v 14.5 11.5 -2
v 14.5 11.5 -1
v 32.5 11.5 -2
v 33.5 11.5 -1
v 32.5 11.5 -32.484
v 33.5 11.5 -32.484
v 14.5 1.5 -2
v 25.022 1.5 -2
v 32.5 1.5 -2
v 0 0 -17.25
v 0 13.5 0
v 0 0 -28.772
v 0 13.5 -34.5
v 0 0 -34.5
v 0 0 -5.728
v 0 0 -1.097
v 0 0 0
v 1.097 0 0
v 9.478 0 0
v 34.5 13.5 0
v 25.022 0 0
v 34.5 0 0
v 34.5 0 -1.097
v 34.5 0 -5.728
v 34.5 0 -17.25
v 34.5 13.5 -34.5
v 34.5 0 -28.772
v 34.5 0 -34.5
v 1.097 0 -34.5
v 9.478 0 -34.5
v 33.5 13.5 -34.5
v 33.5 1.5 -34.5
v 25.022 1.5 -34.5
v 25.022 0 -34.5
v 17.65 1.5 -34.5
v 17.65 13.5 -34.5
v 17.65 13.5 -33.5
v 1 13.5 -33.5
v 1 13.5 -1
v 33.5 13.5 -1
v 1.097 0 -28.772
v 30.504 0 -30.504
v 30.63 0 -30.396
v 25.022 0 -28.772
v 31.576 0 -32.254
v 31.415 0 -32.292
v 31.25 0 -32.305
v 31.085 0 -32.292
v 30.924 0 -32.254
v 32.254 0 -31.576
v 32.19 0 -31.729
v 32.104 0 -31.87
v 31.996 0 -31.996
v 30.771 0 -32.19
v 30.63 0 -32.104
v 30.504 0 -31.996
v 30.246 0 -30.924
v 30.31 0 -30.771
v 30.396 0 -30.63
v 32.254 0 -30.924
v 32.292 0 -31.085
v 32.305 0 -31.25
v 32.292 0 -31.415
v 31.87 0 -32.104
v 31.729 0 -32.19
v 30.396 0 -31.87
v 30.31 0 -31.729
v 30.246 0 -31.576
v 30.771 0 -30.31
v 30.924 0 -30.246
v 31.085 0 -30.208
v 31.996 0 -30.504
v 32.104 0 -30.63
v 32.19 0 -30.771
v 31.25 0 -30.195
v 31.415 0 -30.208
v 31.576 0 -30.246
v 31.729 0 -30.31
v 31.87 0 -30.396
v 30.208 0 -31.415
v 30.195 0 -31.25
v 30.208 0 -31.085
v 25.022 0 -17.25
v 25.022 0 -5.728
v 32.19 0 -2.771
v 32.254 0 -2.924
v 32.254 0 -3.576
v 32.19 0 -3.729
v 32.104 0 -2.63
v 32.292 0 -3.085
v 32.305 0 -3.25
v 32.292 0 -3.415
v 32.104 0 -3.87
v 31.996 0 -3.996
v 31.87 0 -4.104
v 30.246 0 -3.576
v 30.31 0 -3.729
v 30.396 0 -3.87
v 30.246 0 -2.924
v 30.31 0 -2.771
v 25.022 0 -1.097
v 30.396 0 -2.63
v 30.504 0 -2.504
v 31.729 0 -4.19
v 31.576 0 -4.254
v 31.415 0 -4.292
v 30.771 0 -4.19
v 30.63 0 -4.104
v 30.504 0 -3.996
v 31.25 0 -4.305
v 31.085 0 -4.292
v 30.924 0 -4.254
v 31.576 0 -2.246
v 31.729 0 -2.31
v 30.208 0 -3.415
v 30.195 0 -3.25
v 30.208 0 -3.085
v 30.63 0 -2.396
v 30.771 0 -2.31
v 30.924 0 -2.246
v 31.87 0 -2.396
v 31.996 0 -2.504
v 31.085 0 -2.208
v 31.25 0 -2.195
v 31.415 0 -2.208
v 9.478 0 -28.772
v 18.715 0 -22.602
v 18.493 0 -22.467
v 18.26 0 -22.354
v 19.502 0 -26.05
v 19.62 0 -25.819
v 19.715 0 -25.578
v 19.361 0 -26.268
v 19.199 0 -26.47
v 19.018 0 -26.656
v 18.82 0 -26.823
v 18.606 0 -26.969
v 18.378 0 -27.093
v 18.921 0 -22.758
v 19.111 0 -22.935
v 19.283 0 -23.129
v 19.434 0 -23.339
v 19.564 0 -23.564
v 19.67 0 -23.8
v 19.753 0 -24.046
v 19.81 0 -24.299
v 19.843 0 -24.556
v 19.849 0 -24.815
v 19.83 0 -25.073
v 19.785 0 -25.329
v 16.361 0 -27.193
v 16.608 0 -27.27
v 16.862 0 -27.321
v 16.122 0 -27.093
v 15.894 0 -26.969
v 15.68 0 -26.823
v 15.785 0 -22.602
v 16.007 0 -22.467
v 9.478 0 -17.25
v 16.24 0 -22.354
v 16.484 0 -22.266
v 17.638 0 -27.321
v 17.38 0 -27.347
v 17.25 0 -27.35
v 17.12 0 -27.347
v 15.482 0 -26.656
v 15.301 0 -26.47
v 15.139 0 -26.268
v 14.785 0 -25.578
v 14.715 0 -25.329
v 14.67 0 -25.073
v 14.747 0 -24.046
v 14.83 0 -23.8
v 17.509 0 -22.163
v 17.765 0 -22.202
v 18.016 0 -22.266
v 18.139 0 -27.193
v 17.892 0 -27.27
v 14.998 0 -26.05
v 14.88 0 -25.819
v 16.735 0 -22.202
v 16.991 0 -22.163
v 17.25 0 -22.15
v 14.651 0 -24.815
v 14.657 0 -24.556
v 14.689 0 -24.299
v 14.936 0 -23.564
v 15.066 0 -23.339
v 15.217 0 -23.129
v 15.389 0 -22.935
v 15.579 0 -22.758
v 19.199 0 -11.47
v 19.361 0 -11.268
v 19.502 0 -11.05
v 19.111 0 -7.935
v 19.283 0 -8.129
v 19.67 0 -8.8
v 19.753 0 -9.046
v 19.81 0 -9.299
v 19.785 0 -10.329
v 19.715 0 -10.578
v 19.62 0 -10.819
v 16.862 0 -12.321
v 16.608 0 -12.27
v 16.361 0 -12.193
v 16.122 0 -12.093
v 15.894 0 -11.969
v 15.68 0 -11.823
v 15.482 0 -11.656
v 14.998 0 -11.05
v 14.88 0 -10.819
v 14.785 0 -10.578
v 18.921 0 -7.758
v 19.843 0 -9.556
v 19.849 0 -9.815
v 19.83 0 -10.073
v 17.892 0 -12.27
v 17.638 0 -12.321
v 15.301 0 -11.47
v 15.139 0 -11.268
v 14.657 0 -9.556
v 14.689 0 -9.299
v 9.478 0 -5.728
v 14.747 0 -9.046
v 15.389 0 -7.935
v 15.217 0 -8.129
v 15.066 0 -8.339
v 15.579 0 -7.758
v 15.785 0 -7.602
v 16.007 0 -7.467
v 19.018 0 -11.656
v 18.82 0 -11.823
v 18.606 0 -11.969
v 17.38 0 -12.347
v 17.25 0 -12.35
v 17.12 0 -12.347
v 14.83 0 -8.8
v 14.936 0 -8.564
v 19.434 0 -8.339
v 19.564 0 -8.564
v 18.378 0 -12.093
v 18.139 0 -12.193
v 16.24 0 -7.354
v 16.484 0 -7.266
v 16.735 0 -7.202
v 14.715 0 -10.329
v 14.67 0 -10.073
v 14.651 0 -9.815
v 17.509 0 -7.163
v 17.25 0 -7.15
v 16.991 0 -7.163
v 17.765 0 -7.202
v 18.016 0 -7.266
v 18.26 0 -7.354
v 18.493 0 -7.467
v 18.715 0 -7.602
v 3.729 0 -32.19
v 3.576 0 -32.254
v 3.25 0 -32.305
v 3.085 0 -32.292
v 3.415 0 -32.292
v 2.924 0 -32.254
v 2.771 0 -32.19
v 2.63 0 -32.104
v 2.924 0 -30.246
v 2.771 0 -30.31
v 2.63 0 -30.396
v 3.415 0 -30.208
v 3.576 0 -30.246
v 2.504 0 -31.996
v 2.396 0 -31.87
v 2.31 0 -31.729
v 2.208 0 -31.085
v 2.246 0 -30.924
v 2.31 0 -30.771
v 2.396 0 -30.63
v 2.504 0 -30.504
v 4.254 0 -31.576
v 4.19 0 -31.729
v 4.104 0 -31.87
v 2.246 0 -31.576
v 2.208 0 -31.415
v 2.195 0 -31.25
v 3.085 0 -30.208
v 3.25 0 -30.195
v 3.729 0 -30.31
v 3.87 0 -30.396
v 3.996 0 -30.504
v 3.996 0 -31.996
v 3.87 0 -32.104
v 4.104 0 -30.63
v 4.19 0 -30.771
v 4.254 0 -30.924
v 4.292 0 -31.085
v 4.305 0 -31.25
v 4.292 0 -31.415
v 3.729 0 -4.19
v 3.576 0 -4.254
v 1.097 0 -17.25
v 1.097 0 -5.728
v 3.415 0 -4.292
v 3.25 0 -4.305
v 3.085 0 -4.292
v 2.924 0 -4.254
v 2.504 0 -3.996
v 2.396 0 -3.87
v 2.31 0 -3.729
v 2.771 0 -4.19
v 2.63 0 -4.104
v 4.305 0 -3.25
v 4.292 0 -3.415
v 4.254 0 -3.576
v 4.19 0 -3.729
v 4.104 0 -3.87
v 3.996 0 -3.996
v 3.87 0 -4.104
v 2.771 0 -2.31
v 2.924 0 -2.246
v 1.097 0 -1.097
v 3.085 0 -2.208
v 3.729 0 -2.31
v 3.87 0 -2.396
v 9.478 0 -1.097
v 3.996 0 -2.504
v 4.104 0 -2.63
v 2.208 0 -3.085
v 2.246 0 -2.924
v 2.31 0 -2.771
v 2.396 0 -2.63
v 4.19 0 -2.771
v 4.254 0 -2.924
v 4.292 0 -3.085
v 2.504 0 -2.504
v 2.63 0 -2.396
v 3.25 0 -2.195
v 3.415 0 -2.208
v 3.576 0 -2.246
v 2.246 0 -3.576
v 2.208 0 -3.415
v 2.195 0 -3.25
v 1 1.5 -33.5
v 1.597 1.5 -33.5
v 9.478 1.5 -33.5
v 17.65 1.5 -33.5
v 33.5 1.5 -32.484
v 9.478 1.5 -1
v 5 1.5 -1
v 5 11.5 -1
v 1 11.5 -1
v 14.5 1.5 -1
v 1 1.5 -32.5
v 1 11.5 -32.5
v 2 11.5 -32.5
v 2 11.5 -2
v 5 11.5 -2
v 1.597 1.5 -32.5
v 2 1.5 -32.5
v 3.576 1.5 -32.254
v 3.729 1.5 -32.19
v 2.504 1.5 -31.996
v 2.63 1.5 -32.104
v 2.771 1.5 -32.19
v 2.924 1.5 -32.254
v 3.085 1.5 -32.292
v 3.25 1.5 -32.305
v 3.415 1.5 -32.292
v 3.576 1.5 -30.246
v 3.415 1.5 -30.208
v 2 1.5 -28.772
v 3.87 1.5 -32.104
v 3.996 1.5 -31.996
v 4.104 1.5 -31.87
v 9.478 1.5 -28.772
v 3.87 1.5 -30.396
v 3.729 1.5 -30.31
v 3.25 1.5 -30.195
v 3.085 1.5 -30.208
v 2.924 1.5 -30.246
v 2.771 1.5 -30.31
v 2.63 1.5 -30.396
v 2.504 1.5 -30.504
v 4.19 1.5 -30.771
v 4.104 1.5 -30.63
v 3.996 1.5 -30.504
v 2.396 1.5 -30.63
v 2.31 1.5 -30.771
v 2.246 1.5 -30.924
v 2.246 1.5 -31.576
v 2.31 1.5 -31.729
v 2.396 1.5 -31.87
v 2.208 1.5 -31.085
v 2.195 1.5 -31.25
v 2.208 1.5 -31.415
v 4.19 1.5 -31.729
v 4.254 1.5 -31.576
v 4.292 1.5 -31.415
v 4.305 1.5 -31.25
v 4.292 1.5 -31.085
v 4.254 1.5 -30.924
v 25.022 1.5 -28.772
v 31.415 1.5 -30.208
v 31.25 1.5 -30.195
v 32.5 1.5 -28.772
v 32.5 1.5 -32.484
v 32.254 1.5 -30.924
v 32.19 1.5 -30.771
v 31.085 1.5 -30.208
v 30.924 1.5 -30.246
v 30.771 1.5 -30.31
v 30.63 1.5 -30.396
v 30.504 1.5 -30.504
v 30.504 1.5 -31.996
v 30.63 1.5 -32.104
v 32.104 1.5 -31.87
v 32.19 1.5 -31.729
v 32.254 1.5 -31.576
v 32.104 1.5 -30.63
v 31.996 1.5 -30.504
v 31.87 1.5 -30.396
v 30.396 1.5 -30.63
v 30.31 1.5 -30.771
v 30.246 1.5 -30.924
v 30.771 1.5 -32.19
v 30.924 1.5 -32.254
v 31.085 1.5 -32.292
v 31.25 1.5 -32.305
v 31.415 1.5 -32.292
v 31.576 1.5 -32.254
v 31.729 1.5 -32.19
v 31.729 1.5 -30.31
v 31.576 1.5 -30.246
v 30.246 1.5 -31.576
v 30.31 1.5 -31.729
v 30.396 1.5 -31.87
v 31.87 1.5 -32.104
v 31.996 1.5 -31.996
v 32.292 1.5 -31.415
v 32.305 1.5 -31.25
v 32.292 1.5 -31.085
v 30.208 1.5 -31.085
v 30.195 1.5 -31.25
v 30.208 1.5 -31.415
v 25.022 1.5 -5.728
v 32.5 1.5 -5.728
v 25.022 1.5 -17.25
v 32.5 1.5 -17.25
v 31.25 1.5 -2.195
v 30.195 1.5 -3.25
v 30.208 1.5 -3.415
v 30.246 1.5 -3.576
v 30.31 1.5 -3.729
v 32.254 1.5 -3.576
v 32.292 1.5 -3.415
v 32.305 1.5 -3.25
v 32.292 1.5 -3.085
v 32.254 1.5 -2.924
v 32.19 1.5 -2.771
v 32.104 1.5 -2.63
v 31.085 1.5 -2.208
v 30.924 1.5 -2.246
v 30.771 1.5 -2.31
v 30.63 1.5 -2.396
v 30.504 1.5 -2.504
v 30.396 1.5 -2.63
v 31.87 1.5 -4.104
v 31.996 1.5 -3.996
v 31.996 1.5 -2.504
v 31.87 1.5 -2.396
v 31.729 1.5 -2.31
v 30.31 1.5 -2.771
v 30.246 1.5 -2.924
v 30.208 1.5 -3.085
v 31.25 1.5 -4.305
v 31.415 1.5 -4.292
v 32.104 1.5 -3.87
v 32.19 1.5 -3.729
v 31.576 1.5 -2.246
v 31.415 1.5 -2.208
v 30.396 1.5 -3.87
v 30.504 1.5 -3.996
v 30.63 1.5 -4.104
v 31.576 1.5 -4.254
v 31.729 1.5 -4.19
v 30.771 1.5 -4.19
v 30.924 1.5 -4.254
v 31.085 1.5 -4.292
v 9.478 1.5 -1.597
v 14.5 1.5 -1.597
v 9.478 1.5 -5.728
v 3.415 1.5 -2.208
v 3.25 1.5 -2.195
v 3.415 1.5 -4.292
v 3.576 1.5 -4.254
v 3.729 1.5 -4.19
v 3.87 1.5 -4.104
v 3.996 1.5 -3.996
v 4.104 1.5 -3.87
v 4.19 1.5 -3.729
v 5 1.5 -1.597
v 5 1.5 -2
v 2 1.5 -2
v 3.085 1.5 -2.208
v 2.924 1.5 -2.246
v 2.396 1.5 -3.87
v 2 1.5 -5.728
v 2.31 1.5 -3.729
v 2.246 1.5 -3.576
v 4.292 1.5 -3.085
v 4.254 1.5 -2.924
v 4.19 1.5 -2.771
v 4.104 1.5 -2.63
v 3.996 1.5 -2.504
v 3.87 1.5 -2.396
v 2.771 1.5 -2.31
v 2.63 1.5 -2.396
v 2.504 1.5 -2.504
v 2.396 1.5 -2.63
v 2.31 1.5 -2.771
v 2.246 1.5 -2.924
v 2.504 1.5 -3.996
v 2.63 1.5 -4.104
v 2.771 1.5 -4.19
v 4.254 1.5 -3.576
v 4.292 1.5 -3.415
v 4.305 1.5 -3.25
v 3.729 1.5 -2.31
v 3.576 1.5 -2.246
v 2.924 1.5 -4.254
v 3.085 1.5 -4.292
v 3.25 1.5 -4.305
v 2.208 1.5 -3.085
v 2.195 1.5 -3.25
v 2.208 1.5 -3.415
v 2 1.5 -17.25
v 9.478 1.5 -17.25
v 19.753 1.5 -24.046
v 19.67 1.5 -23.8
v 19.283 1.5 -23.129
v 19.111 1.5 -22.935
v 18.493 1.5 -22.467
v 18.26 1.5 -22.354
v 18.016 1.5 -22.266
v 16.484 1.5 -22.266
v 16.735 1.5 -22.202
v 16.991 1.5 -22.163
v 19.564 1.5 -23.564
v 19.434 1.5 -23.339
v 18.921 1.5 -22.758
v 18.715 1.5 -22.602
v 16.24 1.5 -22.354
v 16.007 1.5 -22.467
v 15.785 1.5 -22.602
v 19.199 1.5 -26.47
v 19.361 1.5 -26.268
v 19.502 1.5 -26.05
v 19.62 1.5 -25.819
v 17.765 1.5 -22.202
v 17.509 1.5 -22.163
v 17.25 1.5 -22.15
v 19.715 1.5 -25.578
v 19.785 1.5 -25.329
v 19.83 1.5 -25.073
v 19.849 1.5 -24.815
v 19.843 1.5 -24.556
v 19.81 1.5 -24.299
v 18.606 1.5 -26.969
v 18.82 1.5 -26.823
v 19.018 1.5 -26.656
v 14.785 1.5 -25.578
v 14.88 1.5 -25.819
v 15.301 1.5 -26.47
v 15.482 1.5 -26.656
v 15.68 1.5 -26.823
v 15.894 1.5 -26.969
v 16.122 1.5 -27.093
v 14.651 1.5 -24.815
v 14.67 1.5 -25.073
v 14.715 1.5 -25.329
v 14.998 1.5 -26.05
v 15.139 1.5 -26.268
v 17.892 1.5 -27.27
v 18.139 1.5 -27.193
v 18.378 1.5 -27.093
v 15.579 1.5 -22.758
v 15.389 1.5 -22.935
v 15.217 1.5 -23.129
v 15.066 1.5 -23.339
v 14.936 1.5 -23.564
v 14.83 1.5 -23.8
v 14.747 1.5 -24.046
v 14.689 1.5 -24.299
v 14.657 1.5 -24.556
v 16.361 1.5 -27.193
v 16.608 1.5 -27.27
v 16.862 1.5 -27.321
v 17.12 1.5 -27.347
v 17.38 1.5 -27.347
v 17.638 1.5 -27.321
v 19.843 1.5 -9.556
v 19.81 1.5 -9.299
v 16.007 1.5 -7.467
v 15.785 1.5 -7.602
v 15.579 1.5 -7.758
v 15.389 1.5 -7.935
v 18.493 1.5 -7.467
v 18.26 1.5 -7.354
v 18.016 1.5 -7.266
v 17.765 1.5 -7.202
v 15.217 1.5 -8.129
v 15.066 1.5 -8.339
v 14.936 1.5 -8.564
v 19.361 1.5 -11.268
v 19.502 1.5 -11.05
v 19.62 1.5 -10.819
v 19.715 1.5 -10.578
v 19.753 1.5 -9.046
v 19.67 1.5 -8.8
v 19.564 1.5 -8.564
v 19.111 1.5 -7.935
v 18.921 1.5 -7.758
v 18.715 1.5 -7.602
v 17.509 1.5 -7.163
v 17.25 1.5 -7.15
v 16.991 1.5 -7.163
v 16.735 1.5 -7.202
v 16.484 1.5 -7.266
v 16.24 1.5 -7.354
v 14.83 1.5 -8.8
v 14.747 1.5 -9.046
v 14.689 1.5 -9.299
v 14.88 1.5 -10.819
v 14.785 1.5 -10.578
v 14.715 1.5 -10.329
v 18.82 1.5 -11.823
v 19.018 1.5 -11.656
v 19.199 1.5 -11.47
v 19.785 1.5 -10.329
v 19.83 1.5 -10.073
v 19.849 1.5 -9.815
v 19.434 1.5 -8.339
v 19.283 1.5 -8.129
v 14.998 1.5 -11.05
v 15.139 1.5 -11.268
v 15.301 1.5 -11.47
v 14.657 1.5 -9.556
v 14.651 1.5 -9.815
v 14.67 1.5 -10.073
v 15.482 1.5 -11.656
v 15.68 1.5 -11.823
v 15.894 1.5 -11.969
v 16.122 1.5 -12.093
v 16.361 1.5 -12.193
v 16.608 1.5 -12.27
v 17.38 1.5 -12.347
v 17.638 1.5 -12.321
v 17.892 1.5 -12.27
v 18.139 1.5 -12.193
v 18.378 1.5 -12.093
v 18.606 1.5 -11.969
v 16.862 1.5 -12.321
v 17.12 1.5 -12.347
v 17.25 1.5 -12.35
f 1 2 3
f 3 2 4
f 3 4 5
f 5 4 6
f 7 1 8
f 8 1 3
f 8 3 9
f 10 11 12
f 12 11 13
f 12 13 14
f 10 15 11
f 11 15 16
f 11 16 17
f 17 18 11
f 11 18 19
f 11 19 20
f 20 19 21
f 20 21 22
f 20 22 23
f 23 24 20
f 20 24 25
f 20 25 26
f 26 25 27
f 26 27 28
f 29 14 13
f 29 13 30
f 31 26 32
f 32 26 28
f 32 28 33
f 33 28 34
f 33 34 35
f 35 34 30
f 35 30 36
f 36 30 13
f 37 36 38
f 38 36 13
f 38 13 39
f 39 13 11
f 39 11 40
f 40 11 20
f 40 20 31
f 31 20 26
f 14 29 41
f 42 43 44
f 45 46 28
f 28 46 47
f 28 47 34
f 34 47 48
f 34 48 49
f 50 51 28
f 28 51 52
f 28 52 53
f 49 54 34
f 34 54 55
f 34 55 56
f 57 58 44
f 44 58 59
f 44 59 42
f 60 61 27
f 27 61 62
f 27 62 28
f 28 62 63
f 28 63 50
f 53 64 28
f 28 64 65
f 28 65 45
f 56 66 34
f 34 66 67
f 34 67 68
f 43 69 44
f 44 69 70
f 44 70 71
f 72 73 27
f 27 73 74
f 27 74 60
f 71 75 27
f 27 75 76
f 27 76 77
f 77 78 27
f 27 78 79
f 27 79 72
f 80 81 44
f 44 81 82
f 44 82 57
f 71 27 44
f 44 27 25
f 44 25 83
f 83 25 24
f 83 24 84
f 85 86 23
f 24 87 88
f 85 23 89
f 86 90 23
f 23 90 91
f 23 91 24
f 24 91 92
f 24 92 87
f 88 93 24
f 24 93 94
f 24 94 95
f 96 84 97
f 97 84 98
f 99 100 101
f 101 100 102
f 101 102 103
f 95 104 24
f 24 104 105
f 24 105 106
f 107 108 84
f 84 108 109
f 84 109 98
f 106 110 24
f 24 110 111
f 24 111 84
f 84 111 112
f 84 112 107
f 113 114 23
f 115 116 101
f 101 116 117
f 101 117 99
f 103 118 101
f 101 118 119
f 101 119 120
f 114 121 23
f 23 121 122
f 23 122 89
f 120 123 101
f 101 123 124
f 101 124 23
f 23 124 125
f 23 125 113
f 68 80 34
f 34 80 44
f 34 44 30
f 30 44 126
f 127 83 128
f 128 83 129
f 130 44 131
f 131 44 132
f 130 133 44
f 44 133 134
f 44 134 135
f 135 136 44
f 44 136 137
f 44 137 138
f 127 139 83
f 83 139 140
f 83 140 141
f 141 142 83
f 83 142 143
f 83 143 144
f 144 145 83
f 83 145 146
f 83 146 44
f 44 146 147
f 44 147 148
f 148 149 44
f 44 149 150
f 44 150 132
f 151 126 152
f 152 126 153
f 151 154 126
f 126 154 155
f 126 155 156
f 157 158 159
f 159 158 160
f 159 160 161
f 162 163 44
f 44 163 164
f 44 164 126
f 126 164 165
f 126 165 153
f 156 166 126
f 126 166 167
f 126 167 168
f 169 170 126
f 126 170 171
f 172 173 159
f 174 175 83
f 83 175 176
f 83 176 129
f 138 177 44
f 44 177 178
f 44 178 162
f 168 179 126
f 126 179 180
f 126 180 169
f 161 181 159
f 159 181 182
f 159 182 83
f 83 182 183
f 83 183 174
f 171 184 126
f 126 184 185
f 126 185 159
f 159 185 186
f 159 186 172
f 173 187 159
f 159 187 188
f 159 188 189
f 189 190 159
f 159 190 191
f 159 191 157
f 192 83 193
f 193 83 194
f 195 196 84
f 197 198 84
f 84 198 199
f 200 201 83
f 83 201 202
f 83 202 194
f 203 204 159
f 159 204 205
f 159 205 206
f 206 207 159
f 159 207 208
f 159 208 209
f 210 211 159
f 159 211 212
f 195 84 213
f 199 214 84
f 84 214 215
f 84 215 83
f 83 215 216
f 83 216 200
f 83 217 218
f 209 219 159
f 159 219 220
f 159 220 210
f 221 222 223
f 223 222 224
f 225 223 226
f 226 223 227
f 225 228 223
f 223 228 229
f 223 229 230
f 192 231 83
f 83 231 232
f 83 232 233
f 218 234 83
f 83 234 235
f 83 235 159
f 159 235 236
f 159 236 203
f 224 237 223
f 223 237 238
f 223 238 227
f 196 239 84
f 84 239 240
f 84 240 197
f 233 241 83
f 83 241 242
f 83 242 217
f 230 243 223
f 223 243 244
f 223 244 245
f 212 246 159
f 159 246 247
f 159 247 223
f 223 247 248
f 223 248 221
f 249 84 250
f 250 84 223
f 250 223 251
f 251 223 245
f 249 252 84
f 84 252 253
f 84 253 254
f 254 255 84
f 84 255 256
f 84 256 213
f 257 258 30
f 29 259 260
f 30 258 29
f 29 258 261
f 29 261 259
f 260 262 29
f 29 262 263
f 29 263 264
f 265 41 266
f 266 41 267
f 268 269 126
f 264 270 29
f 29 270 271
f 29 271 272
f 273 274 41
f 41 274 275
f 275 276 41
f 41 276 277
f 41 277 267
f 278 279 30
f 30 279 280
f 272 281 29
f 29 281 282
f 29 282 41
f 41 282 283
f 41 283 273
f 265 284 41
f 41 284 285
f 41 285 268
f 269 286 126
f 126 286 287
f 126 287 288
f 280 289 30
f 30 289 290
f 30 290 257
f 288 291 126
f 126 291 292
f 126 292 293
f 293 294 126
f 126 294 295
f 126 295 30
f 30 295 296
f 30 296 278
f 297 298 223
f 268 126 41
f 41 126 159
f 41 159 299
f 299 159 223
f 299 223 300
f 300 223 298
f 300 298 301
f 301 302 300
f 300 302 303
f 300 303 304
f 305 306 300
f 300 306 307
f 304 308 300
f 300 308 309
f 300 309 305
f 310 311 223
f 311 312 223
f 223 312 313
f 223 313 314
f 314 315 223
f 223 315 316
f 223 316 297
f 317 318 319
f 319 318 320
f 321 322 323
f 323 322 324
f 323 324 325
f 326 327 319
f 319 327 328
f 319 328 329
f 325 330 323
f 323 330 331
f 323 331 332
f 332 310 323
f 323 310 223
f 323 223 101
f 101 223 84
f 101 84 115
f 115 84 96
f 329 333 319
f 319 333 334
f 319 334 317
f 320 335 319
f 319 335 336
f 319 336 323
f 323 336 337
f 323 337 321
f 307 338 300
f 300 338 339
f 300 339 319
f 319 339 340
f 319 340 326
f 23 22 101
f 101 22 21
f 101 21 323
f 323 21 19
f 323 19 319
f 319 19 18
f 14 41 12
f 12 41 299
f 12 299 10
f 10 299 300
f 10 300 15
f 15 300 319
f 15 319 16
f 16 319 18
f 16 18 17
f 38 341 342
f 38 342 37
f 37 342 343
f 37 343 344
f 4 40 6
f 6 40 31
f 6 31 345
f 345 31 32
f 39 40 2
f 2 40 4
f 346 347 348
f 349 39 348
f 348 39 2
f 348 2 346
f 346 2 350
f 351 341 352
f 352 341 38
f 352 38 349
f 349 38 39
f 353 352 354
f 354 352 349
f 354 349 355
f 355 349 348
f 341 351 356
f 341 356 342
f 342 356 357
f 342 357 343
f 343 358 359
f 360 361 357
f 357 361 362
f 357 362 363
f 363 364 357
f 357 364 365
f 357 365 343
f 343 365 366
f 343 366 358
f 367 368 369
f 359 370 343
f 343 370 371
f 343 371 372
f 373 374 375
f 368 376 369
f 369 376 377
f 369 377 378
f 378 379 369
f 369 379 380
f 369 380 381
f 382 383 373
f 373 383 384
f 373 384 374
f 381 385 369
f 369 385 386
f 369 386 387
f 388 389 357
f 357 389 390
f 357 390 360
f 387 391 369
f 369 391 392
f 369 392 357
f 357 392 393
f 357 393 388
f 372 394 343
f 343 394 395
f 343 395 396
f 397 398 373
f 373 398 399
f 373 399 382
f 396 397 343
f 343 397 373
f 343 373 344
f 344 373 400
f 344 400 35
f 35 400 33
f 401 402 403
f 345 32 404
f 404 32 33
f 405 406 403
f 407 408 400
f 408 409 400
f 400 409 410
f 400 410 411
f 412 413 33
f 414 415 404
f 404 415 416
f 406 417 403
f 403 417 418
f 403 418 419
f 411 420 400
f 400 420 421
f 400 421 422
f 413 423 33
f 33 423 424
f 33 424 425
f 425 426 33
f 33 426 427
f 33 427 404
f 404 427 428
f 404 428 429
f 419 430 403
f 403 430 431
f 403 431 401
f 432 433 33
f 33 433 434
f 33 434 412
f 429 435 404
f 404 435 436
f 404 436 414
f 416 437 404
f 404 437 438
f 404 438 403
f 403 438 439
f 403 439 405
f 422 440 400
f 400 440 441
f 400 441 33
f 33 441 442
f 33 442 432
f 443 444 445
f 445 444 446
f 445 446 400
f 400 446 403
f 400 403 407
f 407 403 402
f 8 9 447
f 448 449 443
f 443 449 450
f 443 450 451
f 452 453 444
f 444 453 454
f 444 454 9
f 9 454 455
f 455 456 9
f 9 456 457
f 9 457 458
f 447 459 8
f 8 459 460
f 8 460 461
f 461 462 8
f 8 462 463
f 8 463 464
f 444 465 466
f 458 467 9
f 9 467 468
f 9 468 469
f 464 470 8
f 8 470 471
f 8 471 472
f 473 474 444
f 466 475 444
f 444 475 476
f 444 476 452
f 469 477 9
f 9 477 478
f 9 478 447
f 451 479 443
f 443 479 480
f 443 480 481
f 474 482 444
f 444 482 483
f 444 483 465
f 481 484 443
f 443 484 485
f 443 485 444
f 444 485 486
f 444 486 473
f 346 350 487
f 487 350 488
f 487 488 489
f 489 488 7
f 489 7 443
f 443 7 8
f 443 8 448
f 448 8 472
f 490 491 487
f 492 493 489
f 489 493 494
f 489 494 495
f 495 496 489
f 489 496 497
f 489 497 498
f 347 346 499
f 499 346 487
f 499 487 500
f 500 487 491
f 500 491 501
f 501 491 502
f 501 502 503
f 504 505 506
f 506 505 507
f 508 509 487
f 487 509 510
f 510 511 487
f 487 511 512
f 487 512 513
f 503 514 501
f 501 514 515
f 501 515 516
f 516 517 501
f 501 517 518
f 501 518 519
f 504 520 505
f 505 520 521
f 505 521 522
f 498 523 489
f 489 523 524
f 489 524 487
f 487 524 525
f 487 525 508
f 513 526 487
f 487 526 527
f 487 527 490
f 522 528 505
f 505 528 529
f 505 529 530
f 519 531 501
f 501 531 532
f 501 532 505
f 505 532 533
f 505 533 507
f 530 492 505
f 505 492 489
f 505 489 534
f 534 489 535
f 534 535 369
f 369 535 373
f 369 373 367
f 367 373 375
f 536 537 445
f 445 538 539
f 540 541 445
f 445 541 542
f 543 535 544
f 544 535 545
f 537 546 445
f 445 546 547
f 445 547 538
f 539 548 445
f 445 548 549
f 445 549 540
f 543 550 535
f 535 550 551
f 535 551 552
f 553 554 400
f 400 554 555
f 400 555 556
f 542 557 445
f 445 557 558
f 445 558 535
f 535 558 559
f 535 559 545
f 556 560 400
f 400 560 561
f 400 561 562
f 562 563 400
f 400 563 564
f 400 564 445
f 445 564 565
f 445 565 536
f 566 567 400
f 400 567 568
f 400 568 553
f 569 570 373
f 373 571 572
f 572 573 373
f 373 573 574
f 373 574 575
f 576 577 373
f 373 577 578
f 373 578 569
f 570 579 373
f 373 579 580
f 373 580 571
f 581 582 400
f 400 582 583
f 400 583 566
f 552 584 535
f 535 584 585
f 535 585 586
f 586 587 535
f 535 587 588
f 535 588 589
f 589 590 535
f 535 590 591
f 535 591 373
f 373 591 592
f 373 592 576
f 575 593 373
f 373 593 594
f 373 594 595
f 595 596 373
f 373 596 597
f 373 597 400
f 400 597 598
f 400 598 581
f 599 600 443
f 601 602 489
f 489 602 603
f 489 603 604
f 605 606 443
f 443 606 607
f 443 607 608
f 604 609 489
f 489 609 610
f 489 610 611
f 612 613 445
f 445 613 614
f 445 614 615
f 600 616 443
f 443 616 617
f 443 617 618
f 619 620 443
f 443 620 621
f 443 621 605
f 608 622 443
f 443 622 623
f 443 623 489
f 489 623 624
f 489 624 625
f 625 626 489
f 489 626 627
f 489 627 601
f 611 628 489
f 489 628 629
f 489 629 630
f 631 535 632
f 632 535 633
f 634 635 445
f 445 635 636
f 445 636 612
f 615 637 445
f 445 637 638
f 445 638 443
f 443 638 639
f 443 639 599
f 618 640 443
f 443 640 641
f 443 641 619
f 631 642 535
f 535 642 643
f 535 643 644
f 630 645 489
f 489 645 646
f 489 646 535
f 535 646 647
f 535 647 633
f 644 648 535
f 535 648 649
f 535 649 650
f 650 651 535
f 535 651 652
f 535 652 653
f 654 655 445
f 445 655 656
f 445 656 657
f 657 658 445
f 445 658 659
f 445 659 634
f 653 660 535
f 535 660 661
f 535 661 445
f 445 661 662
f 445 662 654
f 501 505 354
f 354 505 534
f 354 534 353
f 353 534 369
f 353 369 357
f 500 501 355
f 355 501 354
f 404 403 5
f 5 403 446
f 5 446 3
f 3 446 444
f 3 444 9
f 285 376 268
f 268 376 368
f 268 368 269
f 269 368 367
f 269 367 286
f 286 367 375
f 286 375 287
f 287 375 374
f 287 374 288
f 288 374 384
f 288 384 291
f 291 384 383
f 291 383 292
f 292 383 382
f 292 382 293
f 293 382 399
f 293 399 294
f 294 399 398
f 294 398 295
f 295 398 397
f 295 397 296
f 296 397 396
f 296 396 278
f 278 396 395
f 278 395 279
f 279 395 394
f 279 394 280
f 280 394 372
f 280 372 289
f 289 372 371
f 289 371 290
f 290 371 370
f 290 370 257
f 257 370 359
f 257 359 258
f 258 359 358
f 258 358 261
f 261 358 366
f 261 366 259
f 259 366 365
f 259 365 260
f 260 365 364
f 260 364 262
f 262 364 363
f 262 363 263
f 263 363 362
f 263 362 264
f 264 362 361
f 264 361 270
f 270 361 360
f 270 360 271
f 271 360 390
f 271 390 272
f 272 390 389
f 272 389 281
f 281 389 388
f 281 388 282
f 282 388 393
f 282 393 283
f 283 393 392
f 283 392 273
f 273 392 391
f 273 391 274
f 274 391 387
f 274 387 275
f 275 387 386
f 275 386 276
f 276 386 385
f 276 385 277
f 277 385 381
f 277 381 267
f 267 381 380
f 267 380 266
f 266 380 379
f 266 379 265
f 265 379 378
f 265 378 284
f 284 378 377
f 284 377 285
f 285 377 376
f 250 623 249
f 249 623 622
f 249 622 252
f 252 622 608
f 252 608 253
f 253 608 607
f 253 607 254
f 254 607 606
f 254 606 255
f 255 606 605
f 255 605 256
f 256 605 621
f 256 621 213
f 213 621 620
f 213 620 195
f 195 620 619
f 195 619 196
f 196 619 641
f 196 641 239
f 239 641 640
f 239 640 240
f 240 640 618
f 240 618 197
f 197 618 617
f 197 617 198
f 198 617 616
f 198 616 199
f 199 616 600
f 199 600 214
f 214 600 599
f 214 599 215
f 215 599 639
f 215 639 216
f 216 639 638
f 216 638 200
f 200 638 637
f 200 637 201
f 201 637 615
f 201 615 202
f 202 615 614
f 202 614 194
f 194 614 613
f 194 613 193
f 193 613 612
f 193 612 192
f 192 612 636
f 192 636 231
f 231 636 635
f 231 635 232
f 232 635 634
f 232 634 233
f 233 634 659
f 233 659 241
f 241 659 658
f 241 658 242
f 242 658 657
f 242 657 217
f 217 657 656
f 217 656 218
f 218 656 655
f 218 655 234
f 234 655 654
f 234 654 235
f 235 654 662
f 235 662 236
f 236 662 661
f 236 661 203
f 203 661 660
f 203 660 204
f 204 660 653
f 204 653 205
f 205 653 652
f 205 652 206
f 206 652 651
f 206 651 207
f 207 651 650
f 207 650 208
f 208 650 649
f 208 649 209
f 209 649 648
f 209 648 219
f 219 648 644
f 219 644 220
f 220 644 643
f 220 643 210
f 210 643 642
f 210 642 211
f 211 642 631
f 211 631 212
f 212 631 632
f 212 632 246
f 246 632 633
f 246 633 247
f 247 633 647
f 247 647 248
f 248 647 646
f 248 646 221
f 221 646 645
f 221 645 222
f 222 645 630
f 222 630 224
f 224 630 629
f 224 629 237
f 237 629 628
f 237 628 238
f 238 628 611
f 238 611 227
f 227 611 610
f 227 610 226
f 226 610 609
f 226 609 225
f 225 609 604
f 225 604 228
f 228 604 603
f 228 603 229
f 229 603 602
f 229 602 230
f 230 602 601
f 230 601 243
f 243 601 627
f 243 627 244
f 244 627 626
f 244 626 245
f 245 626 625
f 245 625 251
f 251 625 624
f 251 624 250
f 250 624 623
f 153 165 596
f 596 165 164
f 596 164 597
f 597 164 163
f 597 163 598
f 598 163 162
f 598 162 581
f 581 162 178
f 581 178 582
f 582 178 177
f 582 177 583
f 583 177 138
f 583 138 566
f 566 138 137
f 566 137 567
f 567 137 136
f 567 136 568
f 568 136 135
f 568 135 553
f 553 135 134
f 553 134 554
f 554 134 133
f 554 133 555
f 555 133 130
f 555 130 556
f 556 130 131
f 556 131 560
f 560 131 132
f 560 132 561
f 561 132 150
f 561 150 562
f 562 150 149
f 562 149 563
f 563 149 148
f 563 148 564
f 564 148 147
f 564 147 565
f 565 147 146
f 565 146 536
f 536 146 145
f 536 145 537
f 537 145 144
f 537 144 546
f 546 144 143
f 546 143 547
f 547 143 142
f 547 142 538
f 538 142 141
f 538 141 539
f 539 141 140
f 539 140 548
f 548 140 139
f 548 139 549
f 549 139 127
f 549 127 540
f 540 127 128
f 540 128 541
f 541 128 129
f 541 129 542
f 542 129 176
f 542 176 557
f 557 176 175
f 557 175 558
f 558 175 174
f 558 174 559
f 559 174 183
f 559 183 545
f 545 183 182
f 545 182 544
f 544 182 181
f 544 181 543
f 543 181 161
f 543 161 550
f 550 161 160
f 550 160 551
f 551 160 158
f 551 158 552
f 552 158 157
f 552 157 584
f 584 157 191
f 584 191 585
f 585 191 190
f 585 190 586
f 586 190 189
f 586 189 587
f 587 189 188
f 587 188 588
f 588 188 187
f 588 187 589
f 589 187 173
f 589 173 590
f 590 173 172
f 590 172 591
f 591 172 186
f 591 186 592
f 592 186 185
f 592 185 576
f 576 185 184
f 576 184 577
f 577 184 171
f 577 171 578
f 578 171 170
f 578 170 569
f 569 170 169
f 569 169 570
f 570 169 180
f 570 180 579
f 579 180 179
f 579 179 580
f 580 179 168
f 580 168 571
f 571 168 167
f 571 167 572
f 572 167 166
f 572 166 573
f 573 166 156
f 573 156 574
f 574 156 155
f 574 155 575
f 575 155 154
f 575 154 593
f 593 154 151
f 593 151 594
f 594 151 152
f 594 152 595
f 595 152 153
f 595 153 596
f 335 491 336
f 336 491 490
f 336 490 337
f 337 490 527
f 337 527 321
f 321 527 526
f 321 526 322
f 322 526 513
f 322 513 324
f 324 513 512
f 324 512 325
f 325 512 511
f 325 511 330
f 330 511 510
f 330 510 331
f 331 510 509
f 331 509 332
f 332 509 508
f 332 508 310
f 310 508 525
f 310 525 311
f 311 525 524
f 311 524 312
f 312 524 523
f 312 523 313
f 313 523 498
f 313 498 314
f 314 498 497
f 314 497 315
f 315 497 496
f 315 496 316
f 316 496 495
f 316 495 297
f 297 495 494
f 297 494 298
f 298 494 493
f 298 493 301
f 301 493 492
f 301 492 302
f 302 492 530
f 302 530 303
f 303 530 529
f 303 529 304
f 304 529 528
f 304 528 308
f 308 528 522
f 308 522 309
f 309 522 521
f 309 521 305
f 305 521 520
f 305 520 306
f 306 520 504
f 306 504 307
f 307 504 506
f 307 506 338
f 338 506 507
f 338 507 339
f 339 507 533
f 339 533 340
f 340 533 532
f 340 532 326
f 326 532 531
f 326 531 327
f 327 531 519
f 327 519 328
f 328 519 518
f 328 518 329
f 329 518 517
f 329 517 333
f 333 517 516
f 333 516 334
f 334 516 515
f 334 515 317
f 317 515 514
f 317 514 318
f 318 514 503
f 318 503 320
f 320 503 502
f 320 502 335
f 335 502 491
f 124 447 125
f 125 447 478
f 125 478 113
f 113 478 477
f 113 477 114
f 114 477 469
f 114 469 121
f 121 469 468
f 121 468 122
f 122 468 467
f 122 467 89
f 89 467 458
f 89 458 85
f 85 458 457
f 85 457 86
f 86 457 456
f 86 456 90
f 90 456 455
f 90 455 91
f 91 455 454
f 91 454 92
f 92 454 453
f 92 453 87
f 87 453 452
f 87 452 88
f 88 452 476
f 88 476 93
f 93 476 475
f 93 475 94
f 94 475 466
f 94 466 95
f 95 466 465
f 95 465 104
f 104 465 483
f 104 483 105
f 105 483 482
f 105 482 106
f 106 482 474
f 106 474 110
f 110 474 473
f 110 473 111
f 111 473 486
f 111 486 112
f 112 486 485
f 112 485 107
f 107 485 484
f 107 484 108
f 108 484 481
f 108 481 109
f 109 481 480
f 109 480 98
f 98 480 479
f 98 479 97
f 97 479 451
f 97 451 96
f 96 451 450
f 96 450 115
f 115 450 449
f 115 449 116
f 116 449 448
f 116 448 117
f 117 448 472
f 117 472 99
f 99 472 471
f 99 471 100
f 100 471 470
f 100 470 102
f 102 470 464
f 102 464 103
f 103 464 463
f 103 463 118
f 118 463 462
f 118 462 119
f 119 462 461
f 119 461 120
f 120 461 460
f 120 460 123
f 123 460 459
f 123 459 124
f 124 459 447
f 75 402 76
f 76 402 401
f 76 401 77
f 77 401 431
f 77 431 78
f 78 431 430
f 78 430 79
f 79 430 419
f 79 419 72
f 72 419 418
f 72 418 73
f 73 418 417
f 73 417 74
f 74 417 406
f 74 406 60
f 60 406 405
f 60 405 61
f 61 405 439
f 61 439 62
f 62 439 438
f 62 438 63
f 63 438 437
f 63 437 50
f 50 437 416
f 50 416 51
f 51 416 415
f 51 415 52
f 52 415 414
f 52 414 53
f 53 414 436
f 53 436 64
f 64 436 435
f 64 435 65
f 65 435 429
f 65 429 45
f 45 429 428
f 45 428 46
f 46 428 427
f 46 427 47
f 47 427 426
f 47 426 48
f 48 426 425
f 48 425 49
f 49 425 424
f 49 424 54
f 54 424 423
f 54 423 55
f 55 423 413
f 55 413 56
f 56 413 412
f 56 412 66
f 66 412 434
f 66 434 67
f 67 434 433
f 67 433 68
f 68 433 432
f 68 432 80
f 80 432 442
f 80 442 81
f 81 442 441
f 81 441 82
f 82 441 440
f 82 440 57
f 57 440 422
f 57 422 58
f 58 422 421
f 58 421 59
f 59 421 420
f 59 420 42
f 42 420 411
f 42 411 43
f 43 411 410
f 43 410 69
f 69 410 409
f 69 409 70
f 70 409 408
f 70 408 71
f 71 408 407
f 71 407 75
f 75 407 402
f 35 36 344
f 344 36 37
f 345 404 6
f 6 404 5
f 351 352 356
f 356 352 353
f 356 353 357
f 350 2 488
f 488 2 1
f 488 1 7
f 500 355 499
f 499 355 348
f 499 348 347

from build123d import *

# Parameters (mm, degrees)
SKETCH_1_W          = 34.5
SKETCH_1_H          = 34.5
EXTRUDE_1_DEPTH     = 13.5
SKETCH_2_W          = 32.5
SKETCH_2_H          = 32.5
CUT_EXTRUDE_1_DEPTH = 2
SKETCH_3_W          = 30.5
SKETCH_3_H          = 30.5
CUT_EXTRUDE_2_DEPTH = 10
SKETCH_4_R          = 1.055259324
SKETCH_4_R_2        = 2.6
CUT_EXTRUDE_3_DEPTH = 12
CUT_EXTRUDE_4_REACH = 52.624
SKETCH_5_W          = 15.85
SKETCH_5_H          = 2.015973822
SKETCH_7_W          = 16.65
SKETCH_7_H          = 1
CUT_EXTRUDE_6_DEPTH = 10
SKETCH_8_W          = 9.5
SKETCH_8_H          = 1
CUT_EXTRUDE_7_DEPTH = 10


with BuildPart() as part:
    # 草图1 → 凸台-拉伸1 (new body)
    with BuildSketch(Plane(origin=(0, 0, 0), x_dir=(1, 0, 0), z_dir=(0, 1, 0))):
        with Locations((17.25, 17.25)):
            Rectangle(SKETCH_1_W, SKETCH_1_H)
    extrude(amount=EXTRUDE_1_DEPTH)

    # 草图2 → 切除-拉伸1 (cut)
    with BuildSketch(Plane(origin=(0, 13.5, 0), x_dir=(1, 0, 0), z_dir=(0, 1, 0))):
        with Locations((17.25, 17.25)):
            Rectangle(SKETCH_2_W, SKETCH_2_H)
    extrude(amount=-CUT_EXTRUDE_1_DEPTH, mode=Mode.SUBTRACT)

    # 草图3 → 切除-拉伸2 (cut)
    with BuildSketch(Plane(origin=(0, 11.5, 0), x_dir=(1, 0, 0), z_dir=(0, 1, 0))):
        with Locations((17.25, 17.25)):
            Rectangle(SKETCH_3_W, SKETCH_3_H)
    extrude(amount=-CUT_EXTRUDE_2_DEPTH, mode=Mode.SUBTRACT)

    # 草图4 → 切除-拉伸3 (cut)
    with BuildSketch(Plane(origin=(0, 1.5, 0), x_dir=(1, 0, 0), z_dir=(0, 1, 0))):
        with Locations(Location((3.25, 31.25, 0), (0, 0, 270))):
            Circle(SKETCH_4_R)
        with Locations(Location((31.25, 31.25, 0), (0, 0, 90))):
            Circle(SKETCH_4_R)
        with Locations(Location((31.25, 3.25, 0), (0, 0, 270))):
            Circle(SKETCH_4_R)
        with Locations(Location((3.25, 3.25, 0), (0, 0, 90))):
            Circle(SKETCH_4_R)
        with Locations(Location((17.25, 24.75, 0), (0, 0, 270))):
            Circle(SKETCH_4_R_2)
        with Locations(Location((17.25, 9.75, 0), (0, 0, 90))):
            Circle(SKETCH_4_R_2)
    extrude(amount=-CUT_EXTRUDE_3_DEPTH, mode=Mode.SUBTRACT)

    # 切除-拉伸4: up to this face of the body (flat: up to its plane)
    cut_extrude_4_end = Plane(part.part.faces().sort_by_distance((17.25, 1.5, -17.25))[0])
    # 草图5 → 切除-拉伸4 (cut, up to the picked face)
    with BuildSketch(Plane(origin=(0, 13.5, 0), x_dir=(1, 0, 0), z_dir=(0, 1, 0)), mode=Mode.PRIVATE) as cut_extrude_4_sk1:
        with Locations((25.575, 33.492013089)):
            Rectangle(SKETCH_5_W, SKETCH_5_H)
    cut_extrude_4_tool1 = split(extrude(cut_extrude_4_sk1.sketch, amount=-CUT_EXTRUDE_4_REACH, mode=Mode.PRIVATE), bisect_by=cut_extrude_4_end, keep=Keep.BOTH, mode=Mode.PRIVATE)
    add(cut_extrude_4_tool1.solids().sort_by(Axis((25.575, 13.5, -33.492013), (0, -1, 0)))[0], mode=Mode.SUBTRACT)

    # 草图7 → 切除-拉伸6 (cut)
    with BuildSketch(Plane(origin=(0, 11.5, 0), x_dir=(1, 0, 0), z_dir=(0, 1, 0))):
        with Locations((9.325, 33)):
            Rectangle(SKETCH_7_W, SKETCH_7_H)
    extrude(amount=-CUT_EXTRUDE_6_DEPTH, mode=Mode.SUBTRACT)

    # 草图8 → 切除-拉伸7 (cut)
    with BuildSketch(Plane(origin=(0, 11.5, 0), x_dir=(1, 0, 0), z_dir=(0, 1, 0))):
        with Locations((9.75, 1.5)):
            Rectangle(SKETCH_8_W, SKETCH_8_H)
    extrude(amount=-CUT_EXTRUDE_7_DEPTH, mode=Mode.SUBTRACT)


solid = part.part
